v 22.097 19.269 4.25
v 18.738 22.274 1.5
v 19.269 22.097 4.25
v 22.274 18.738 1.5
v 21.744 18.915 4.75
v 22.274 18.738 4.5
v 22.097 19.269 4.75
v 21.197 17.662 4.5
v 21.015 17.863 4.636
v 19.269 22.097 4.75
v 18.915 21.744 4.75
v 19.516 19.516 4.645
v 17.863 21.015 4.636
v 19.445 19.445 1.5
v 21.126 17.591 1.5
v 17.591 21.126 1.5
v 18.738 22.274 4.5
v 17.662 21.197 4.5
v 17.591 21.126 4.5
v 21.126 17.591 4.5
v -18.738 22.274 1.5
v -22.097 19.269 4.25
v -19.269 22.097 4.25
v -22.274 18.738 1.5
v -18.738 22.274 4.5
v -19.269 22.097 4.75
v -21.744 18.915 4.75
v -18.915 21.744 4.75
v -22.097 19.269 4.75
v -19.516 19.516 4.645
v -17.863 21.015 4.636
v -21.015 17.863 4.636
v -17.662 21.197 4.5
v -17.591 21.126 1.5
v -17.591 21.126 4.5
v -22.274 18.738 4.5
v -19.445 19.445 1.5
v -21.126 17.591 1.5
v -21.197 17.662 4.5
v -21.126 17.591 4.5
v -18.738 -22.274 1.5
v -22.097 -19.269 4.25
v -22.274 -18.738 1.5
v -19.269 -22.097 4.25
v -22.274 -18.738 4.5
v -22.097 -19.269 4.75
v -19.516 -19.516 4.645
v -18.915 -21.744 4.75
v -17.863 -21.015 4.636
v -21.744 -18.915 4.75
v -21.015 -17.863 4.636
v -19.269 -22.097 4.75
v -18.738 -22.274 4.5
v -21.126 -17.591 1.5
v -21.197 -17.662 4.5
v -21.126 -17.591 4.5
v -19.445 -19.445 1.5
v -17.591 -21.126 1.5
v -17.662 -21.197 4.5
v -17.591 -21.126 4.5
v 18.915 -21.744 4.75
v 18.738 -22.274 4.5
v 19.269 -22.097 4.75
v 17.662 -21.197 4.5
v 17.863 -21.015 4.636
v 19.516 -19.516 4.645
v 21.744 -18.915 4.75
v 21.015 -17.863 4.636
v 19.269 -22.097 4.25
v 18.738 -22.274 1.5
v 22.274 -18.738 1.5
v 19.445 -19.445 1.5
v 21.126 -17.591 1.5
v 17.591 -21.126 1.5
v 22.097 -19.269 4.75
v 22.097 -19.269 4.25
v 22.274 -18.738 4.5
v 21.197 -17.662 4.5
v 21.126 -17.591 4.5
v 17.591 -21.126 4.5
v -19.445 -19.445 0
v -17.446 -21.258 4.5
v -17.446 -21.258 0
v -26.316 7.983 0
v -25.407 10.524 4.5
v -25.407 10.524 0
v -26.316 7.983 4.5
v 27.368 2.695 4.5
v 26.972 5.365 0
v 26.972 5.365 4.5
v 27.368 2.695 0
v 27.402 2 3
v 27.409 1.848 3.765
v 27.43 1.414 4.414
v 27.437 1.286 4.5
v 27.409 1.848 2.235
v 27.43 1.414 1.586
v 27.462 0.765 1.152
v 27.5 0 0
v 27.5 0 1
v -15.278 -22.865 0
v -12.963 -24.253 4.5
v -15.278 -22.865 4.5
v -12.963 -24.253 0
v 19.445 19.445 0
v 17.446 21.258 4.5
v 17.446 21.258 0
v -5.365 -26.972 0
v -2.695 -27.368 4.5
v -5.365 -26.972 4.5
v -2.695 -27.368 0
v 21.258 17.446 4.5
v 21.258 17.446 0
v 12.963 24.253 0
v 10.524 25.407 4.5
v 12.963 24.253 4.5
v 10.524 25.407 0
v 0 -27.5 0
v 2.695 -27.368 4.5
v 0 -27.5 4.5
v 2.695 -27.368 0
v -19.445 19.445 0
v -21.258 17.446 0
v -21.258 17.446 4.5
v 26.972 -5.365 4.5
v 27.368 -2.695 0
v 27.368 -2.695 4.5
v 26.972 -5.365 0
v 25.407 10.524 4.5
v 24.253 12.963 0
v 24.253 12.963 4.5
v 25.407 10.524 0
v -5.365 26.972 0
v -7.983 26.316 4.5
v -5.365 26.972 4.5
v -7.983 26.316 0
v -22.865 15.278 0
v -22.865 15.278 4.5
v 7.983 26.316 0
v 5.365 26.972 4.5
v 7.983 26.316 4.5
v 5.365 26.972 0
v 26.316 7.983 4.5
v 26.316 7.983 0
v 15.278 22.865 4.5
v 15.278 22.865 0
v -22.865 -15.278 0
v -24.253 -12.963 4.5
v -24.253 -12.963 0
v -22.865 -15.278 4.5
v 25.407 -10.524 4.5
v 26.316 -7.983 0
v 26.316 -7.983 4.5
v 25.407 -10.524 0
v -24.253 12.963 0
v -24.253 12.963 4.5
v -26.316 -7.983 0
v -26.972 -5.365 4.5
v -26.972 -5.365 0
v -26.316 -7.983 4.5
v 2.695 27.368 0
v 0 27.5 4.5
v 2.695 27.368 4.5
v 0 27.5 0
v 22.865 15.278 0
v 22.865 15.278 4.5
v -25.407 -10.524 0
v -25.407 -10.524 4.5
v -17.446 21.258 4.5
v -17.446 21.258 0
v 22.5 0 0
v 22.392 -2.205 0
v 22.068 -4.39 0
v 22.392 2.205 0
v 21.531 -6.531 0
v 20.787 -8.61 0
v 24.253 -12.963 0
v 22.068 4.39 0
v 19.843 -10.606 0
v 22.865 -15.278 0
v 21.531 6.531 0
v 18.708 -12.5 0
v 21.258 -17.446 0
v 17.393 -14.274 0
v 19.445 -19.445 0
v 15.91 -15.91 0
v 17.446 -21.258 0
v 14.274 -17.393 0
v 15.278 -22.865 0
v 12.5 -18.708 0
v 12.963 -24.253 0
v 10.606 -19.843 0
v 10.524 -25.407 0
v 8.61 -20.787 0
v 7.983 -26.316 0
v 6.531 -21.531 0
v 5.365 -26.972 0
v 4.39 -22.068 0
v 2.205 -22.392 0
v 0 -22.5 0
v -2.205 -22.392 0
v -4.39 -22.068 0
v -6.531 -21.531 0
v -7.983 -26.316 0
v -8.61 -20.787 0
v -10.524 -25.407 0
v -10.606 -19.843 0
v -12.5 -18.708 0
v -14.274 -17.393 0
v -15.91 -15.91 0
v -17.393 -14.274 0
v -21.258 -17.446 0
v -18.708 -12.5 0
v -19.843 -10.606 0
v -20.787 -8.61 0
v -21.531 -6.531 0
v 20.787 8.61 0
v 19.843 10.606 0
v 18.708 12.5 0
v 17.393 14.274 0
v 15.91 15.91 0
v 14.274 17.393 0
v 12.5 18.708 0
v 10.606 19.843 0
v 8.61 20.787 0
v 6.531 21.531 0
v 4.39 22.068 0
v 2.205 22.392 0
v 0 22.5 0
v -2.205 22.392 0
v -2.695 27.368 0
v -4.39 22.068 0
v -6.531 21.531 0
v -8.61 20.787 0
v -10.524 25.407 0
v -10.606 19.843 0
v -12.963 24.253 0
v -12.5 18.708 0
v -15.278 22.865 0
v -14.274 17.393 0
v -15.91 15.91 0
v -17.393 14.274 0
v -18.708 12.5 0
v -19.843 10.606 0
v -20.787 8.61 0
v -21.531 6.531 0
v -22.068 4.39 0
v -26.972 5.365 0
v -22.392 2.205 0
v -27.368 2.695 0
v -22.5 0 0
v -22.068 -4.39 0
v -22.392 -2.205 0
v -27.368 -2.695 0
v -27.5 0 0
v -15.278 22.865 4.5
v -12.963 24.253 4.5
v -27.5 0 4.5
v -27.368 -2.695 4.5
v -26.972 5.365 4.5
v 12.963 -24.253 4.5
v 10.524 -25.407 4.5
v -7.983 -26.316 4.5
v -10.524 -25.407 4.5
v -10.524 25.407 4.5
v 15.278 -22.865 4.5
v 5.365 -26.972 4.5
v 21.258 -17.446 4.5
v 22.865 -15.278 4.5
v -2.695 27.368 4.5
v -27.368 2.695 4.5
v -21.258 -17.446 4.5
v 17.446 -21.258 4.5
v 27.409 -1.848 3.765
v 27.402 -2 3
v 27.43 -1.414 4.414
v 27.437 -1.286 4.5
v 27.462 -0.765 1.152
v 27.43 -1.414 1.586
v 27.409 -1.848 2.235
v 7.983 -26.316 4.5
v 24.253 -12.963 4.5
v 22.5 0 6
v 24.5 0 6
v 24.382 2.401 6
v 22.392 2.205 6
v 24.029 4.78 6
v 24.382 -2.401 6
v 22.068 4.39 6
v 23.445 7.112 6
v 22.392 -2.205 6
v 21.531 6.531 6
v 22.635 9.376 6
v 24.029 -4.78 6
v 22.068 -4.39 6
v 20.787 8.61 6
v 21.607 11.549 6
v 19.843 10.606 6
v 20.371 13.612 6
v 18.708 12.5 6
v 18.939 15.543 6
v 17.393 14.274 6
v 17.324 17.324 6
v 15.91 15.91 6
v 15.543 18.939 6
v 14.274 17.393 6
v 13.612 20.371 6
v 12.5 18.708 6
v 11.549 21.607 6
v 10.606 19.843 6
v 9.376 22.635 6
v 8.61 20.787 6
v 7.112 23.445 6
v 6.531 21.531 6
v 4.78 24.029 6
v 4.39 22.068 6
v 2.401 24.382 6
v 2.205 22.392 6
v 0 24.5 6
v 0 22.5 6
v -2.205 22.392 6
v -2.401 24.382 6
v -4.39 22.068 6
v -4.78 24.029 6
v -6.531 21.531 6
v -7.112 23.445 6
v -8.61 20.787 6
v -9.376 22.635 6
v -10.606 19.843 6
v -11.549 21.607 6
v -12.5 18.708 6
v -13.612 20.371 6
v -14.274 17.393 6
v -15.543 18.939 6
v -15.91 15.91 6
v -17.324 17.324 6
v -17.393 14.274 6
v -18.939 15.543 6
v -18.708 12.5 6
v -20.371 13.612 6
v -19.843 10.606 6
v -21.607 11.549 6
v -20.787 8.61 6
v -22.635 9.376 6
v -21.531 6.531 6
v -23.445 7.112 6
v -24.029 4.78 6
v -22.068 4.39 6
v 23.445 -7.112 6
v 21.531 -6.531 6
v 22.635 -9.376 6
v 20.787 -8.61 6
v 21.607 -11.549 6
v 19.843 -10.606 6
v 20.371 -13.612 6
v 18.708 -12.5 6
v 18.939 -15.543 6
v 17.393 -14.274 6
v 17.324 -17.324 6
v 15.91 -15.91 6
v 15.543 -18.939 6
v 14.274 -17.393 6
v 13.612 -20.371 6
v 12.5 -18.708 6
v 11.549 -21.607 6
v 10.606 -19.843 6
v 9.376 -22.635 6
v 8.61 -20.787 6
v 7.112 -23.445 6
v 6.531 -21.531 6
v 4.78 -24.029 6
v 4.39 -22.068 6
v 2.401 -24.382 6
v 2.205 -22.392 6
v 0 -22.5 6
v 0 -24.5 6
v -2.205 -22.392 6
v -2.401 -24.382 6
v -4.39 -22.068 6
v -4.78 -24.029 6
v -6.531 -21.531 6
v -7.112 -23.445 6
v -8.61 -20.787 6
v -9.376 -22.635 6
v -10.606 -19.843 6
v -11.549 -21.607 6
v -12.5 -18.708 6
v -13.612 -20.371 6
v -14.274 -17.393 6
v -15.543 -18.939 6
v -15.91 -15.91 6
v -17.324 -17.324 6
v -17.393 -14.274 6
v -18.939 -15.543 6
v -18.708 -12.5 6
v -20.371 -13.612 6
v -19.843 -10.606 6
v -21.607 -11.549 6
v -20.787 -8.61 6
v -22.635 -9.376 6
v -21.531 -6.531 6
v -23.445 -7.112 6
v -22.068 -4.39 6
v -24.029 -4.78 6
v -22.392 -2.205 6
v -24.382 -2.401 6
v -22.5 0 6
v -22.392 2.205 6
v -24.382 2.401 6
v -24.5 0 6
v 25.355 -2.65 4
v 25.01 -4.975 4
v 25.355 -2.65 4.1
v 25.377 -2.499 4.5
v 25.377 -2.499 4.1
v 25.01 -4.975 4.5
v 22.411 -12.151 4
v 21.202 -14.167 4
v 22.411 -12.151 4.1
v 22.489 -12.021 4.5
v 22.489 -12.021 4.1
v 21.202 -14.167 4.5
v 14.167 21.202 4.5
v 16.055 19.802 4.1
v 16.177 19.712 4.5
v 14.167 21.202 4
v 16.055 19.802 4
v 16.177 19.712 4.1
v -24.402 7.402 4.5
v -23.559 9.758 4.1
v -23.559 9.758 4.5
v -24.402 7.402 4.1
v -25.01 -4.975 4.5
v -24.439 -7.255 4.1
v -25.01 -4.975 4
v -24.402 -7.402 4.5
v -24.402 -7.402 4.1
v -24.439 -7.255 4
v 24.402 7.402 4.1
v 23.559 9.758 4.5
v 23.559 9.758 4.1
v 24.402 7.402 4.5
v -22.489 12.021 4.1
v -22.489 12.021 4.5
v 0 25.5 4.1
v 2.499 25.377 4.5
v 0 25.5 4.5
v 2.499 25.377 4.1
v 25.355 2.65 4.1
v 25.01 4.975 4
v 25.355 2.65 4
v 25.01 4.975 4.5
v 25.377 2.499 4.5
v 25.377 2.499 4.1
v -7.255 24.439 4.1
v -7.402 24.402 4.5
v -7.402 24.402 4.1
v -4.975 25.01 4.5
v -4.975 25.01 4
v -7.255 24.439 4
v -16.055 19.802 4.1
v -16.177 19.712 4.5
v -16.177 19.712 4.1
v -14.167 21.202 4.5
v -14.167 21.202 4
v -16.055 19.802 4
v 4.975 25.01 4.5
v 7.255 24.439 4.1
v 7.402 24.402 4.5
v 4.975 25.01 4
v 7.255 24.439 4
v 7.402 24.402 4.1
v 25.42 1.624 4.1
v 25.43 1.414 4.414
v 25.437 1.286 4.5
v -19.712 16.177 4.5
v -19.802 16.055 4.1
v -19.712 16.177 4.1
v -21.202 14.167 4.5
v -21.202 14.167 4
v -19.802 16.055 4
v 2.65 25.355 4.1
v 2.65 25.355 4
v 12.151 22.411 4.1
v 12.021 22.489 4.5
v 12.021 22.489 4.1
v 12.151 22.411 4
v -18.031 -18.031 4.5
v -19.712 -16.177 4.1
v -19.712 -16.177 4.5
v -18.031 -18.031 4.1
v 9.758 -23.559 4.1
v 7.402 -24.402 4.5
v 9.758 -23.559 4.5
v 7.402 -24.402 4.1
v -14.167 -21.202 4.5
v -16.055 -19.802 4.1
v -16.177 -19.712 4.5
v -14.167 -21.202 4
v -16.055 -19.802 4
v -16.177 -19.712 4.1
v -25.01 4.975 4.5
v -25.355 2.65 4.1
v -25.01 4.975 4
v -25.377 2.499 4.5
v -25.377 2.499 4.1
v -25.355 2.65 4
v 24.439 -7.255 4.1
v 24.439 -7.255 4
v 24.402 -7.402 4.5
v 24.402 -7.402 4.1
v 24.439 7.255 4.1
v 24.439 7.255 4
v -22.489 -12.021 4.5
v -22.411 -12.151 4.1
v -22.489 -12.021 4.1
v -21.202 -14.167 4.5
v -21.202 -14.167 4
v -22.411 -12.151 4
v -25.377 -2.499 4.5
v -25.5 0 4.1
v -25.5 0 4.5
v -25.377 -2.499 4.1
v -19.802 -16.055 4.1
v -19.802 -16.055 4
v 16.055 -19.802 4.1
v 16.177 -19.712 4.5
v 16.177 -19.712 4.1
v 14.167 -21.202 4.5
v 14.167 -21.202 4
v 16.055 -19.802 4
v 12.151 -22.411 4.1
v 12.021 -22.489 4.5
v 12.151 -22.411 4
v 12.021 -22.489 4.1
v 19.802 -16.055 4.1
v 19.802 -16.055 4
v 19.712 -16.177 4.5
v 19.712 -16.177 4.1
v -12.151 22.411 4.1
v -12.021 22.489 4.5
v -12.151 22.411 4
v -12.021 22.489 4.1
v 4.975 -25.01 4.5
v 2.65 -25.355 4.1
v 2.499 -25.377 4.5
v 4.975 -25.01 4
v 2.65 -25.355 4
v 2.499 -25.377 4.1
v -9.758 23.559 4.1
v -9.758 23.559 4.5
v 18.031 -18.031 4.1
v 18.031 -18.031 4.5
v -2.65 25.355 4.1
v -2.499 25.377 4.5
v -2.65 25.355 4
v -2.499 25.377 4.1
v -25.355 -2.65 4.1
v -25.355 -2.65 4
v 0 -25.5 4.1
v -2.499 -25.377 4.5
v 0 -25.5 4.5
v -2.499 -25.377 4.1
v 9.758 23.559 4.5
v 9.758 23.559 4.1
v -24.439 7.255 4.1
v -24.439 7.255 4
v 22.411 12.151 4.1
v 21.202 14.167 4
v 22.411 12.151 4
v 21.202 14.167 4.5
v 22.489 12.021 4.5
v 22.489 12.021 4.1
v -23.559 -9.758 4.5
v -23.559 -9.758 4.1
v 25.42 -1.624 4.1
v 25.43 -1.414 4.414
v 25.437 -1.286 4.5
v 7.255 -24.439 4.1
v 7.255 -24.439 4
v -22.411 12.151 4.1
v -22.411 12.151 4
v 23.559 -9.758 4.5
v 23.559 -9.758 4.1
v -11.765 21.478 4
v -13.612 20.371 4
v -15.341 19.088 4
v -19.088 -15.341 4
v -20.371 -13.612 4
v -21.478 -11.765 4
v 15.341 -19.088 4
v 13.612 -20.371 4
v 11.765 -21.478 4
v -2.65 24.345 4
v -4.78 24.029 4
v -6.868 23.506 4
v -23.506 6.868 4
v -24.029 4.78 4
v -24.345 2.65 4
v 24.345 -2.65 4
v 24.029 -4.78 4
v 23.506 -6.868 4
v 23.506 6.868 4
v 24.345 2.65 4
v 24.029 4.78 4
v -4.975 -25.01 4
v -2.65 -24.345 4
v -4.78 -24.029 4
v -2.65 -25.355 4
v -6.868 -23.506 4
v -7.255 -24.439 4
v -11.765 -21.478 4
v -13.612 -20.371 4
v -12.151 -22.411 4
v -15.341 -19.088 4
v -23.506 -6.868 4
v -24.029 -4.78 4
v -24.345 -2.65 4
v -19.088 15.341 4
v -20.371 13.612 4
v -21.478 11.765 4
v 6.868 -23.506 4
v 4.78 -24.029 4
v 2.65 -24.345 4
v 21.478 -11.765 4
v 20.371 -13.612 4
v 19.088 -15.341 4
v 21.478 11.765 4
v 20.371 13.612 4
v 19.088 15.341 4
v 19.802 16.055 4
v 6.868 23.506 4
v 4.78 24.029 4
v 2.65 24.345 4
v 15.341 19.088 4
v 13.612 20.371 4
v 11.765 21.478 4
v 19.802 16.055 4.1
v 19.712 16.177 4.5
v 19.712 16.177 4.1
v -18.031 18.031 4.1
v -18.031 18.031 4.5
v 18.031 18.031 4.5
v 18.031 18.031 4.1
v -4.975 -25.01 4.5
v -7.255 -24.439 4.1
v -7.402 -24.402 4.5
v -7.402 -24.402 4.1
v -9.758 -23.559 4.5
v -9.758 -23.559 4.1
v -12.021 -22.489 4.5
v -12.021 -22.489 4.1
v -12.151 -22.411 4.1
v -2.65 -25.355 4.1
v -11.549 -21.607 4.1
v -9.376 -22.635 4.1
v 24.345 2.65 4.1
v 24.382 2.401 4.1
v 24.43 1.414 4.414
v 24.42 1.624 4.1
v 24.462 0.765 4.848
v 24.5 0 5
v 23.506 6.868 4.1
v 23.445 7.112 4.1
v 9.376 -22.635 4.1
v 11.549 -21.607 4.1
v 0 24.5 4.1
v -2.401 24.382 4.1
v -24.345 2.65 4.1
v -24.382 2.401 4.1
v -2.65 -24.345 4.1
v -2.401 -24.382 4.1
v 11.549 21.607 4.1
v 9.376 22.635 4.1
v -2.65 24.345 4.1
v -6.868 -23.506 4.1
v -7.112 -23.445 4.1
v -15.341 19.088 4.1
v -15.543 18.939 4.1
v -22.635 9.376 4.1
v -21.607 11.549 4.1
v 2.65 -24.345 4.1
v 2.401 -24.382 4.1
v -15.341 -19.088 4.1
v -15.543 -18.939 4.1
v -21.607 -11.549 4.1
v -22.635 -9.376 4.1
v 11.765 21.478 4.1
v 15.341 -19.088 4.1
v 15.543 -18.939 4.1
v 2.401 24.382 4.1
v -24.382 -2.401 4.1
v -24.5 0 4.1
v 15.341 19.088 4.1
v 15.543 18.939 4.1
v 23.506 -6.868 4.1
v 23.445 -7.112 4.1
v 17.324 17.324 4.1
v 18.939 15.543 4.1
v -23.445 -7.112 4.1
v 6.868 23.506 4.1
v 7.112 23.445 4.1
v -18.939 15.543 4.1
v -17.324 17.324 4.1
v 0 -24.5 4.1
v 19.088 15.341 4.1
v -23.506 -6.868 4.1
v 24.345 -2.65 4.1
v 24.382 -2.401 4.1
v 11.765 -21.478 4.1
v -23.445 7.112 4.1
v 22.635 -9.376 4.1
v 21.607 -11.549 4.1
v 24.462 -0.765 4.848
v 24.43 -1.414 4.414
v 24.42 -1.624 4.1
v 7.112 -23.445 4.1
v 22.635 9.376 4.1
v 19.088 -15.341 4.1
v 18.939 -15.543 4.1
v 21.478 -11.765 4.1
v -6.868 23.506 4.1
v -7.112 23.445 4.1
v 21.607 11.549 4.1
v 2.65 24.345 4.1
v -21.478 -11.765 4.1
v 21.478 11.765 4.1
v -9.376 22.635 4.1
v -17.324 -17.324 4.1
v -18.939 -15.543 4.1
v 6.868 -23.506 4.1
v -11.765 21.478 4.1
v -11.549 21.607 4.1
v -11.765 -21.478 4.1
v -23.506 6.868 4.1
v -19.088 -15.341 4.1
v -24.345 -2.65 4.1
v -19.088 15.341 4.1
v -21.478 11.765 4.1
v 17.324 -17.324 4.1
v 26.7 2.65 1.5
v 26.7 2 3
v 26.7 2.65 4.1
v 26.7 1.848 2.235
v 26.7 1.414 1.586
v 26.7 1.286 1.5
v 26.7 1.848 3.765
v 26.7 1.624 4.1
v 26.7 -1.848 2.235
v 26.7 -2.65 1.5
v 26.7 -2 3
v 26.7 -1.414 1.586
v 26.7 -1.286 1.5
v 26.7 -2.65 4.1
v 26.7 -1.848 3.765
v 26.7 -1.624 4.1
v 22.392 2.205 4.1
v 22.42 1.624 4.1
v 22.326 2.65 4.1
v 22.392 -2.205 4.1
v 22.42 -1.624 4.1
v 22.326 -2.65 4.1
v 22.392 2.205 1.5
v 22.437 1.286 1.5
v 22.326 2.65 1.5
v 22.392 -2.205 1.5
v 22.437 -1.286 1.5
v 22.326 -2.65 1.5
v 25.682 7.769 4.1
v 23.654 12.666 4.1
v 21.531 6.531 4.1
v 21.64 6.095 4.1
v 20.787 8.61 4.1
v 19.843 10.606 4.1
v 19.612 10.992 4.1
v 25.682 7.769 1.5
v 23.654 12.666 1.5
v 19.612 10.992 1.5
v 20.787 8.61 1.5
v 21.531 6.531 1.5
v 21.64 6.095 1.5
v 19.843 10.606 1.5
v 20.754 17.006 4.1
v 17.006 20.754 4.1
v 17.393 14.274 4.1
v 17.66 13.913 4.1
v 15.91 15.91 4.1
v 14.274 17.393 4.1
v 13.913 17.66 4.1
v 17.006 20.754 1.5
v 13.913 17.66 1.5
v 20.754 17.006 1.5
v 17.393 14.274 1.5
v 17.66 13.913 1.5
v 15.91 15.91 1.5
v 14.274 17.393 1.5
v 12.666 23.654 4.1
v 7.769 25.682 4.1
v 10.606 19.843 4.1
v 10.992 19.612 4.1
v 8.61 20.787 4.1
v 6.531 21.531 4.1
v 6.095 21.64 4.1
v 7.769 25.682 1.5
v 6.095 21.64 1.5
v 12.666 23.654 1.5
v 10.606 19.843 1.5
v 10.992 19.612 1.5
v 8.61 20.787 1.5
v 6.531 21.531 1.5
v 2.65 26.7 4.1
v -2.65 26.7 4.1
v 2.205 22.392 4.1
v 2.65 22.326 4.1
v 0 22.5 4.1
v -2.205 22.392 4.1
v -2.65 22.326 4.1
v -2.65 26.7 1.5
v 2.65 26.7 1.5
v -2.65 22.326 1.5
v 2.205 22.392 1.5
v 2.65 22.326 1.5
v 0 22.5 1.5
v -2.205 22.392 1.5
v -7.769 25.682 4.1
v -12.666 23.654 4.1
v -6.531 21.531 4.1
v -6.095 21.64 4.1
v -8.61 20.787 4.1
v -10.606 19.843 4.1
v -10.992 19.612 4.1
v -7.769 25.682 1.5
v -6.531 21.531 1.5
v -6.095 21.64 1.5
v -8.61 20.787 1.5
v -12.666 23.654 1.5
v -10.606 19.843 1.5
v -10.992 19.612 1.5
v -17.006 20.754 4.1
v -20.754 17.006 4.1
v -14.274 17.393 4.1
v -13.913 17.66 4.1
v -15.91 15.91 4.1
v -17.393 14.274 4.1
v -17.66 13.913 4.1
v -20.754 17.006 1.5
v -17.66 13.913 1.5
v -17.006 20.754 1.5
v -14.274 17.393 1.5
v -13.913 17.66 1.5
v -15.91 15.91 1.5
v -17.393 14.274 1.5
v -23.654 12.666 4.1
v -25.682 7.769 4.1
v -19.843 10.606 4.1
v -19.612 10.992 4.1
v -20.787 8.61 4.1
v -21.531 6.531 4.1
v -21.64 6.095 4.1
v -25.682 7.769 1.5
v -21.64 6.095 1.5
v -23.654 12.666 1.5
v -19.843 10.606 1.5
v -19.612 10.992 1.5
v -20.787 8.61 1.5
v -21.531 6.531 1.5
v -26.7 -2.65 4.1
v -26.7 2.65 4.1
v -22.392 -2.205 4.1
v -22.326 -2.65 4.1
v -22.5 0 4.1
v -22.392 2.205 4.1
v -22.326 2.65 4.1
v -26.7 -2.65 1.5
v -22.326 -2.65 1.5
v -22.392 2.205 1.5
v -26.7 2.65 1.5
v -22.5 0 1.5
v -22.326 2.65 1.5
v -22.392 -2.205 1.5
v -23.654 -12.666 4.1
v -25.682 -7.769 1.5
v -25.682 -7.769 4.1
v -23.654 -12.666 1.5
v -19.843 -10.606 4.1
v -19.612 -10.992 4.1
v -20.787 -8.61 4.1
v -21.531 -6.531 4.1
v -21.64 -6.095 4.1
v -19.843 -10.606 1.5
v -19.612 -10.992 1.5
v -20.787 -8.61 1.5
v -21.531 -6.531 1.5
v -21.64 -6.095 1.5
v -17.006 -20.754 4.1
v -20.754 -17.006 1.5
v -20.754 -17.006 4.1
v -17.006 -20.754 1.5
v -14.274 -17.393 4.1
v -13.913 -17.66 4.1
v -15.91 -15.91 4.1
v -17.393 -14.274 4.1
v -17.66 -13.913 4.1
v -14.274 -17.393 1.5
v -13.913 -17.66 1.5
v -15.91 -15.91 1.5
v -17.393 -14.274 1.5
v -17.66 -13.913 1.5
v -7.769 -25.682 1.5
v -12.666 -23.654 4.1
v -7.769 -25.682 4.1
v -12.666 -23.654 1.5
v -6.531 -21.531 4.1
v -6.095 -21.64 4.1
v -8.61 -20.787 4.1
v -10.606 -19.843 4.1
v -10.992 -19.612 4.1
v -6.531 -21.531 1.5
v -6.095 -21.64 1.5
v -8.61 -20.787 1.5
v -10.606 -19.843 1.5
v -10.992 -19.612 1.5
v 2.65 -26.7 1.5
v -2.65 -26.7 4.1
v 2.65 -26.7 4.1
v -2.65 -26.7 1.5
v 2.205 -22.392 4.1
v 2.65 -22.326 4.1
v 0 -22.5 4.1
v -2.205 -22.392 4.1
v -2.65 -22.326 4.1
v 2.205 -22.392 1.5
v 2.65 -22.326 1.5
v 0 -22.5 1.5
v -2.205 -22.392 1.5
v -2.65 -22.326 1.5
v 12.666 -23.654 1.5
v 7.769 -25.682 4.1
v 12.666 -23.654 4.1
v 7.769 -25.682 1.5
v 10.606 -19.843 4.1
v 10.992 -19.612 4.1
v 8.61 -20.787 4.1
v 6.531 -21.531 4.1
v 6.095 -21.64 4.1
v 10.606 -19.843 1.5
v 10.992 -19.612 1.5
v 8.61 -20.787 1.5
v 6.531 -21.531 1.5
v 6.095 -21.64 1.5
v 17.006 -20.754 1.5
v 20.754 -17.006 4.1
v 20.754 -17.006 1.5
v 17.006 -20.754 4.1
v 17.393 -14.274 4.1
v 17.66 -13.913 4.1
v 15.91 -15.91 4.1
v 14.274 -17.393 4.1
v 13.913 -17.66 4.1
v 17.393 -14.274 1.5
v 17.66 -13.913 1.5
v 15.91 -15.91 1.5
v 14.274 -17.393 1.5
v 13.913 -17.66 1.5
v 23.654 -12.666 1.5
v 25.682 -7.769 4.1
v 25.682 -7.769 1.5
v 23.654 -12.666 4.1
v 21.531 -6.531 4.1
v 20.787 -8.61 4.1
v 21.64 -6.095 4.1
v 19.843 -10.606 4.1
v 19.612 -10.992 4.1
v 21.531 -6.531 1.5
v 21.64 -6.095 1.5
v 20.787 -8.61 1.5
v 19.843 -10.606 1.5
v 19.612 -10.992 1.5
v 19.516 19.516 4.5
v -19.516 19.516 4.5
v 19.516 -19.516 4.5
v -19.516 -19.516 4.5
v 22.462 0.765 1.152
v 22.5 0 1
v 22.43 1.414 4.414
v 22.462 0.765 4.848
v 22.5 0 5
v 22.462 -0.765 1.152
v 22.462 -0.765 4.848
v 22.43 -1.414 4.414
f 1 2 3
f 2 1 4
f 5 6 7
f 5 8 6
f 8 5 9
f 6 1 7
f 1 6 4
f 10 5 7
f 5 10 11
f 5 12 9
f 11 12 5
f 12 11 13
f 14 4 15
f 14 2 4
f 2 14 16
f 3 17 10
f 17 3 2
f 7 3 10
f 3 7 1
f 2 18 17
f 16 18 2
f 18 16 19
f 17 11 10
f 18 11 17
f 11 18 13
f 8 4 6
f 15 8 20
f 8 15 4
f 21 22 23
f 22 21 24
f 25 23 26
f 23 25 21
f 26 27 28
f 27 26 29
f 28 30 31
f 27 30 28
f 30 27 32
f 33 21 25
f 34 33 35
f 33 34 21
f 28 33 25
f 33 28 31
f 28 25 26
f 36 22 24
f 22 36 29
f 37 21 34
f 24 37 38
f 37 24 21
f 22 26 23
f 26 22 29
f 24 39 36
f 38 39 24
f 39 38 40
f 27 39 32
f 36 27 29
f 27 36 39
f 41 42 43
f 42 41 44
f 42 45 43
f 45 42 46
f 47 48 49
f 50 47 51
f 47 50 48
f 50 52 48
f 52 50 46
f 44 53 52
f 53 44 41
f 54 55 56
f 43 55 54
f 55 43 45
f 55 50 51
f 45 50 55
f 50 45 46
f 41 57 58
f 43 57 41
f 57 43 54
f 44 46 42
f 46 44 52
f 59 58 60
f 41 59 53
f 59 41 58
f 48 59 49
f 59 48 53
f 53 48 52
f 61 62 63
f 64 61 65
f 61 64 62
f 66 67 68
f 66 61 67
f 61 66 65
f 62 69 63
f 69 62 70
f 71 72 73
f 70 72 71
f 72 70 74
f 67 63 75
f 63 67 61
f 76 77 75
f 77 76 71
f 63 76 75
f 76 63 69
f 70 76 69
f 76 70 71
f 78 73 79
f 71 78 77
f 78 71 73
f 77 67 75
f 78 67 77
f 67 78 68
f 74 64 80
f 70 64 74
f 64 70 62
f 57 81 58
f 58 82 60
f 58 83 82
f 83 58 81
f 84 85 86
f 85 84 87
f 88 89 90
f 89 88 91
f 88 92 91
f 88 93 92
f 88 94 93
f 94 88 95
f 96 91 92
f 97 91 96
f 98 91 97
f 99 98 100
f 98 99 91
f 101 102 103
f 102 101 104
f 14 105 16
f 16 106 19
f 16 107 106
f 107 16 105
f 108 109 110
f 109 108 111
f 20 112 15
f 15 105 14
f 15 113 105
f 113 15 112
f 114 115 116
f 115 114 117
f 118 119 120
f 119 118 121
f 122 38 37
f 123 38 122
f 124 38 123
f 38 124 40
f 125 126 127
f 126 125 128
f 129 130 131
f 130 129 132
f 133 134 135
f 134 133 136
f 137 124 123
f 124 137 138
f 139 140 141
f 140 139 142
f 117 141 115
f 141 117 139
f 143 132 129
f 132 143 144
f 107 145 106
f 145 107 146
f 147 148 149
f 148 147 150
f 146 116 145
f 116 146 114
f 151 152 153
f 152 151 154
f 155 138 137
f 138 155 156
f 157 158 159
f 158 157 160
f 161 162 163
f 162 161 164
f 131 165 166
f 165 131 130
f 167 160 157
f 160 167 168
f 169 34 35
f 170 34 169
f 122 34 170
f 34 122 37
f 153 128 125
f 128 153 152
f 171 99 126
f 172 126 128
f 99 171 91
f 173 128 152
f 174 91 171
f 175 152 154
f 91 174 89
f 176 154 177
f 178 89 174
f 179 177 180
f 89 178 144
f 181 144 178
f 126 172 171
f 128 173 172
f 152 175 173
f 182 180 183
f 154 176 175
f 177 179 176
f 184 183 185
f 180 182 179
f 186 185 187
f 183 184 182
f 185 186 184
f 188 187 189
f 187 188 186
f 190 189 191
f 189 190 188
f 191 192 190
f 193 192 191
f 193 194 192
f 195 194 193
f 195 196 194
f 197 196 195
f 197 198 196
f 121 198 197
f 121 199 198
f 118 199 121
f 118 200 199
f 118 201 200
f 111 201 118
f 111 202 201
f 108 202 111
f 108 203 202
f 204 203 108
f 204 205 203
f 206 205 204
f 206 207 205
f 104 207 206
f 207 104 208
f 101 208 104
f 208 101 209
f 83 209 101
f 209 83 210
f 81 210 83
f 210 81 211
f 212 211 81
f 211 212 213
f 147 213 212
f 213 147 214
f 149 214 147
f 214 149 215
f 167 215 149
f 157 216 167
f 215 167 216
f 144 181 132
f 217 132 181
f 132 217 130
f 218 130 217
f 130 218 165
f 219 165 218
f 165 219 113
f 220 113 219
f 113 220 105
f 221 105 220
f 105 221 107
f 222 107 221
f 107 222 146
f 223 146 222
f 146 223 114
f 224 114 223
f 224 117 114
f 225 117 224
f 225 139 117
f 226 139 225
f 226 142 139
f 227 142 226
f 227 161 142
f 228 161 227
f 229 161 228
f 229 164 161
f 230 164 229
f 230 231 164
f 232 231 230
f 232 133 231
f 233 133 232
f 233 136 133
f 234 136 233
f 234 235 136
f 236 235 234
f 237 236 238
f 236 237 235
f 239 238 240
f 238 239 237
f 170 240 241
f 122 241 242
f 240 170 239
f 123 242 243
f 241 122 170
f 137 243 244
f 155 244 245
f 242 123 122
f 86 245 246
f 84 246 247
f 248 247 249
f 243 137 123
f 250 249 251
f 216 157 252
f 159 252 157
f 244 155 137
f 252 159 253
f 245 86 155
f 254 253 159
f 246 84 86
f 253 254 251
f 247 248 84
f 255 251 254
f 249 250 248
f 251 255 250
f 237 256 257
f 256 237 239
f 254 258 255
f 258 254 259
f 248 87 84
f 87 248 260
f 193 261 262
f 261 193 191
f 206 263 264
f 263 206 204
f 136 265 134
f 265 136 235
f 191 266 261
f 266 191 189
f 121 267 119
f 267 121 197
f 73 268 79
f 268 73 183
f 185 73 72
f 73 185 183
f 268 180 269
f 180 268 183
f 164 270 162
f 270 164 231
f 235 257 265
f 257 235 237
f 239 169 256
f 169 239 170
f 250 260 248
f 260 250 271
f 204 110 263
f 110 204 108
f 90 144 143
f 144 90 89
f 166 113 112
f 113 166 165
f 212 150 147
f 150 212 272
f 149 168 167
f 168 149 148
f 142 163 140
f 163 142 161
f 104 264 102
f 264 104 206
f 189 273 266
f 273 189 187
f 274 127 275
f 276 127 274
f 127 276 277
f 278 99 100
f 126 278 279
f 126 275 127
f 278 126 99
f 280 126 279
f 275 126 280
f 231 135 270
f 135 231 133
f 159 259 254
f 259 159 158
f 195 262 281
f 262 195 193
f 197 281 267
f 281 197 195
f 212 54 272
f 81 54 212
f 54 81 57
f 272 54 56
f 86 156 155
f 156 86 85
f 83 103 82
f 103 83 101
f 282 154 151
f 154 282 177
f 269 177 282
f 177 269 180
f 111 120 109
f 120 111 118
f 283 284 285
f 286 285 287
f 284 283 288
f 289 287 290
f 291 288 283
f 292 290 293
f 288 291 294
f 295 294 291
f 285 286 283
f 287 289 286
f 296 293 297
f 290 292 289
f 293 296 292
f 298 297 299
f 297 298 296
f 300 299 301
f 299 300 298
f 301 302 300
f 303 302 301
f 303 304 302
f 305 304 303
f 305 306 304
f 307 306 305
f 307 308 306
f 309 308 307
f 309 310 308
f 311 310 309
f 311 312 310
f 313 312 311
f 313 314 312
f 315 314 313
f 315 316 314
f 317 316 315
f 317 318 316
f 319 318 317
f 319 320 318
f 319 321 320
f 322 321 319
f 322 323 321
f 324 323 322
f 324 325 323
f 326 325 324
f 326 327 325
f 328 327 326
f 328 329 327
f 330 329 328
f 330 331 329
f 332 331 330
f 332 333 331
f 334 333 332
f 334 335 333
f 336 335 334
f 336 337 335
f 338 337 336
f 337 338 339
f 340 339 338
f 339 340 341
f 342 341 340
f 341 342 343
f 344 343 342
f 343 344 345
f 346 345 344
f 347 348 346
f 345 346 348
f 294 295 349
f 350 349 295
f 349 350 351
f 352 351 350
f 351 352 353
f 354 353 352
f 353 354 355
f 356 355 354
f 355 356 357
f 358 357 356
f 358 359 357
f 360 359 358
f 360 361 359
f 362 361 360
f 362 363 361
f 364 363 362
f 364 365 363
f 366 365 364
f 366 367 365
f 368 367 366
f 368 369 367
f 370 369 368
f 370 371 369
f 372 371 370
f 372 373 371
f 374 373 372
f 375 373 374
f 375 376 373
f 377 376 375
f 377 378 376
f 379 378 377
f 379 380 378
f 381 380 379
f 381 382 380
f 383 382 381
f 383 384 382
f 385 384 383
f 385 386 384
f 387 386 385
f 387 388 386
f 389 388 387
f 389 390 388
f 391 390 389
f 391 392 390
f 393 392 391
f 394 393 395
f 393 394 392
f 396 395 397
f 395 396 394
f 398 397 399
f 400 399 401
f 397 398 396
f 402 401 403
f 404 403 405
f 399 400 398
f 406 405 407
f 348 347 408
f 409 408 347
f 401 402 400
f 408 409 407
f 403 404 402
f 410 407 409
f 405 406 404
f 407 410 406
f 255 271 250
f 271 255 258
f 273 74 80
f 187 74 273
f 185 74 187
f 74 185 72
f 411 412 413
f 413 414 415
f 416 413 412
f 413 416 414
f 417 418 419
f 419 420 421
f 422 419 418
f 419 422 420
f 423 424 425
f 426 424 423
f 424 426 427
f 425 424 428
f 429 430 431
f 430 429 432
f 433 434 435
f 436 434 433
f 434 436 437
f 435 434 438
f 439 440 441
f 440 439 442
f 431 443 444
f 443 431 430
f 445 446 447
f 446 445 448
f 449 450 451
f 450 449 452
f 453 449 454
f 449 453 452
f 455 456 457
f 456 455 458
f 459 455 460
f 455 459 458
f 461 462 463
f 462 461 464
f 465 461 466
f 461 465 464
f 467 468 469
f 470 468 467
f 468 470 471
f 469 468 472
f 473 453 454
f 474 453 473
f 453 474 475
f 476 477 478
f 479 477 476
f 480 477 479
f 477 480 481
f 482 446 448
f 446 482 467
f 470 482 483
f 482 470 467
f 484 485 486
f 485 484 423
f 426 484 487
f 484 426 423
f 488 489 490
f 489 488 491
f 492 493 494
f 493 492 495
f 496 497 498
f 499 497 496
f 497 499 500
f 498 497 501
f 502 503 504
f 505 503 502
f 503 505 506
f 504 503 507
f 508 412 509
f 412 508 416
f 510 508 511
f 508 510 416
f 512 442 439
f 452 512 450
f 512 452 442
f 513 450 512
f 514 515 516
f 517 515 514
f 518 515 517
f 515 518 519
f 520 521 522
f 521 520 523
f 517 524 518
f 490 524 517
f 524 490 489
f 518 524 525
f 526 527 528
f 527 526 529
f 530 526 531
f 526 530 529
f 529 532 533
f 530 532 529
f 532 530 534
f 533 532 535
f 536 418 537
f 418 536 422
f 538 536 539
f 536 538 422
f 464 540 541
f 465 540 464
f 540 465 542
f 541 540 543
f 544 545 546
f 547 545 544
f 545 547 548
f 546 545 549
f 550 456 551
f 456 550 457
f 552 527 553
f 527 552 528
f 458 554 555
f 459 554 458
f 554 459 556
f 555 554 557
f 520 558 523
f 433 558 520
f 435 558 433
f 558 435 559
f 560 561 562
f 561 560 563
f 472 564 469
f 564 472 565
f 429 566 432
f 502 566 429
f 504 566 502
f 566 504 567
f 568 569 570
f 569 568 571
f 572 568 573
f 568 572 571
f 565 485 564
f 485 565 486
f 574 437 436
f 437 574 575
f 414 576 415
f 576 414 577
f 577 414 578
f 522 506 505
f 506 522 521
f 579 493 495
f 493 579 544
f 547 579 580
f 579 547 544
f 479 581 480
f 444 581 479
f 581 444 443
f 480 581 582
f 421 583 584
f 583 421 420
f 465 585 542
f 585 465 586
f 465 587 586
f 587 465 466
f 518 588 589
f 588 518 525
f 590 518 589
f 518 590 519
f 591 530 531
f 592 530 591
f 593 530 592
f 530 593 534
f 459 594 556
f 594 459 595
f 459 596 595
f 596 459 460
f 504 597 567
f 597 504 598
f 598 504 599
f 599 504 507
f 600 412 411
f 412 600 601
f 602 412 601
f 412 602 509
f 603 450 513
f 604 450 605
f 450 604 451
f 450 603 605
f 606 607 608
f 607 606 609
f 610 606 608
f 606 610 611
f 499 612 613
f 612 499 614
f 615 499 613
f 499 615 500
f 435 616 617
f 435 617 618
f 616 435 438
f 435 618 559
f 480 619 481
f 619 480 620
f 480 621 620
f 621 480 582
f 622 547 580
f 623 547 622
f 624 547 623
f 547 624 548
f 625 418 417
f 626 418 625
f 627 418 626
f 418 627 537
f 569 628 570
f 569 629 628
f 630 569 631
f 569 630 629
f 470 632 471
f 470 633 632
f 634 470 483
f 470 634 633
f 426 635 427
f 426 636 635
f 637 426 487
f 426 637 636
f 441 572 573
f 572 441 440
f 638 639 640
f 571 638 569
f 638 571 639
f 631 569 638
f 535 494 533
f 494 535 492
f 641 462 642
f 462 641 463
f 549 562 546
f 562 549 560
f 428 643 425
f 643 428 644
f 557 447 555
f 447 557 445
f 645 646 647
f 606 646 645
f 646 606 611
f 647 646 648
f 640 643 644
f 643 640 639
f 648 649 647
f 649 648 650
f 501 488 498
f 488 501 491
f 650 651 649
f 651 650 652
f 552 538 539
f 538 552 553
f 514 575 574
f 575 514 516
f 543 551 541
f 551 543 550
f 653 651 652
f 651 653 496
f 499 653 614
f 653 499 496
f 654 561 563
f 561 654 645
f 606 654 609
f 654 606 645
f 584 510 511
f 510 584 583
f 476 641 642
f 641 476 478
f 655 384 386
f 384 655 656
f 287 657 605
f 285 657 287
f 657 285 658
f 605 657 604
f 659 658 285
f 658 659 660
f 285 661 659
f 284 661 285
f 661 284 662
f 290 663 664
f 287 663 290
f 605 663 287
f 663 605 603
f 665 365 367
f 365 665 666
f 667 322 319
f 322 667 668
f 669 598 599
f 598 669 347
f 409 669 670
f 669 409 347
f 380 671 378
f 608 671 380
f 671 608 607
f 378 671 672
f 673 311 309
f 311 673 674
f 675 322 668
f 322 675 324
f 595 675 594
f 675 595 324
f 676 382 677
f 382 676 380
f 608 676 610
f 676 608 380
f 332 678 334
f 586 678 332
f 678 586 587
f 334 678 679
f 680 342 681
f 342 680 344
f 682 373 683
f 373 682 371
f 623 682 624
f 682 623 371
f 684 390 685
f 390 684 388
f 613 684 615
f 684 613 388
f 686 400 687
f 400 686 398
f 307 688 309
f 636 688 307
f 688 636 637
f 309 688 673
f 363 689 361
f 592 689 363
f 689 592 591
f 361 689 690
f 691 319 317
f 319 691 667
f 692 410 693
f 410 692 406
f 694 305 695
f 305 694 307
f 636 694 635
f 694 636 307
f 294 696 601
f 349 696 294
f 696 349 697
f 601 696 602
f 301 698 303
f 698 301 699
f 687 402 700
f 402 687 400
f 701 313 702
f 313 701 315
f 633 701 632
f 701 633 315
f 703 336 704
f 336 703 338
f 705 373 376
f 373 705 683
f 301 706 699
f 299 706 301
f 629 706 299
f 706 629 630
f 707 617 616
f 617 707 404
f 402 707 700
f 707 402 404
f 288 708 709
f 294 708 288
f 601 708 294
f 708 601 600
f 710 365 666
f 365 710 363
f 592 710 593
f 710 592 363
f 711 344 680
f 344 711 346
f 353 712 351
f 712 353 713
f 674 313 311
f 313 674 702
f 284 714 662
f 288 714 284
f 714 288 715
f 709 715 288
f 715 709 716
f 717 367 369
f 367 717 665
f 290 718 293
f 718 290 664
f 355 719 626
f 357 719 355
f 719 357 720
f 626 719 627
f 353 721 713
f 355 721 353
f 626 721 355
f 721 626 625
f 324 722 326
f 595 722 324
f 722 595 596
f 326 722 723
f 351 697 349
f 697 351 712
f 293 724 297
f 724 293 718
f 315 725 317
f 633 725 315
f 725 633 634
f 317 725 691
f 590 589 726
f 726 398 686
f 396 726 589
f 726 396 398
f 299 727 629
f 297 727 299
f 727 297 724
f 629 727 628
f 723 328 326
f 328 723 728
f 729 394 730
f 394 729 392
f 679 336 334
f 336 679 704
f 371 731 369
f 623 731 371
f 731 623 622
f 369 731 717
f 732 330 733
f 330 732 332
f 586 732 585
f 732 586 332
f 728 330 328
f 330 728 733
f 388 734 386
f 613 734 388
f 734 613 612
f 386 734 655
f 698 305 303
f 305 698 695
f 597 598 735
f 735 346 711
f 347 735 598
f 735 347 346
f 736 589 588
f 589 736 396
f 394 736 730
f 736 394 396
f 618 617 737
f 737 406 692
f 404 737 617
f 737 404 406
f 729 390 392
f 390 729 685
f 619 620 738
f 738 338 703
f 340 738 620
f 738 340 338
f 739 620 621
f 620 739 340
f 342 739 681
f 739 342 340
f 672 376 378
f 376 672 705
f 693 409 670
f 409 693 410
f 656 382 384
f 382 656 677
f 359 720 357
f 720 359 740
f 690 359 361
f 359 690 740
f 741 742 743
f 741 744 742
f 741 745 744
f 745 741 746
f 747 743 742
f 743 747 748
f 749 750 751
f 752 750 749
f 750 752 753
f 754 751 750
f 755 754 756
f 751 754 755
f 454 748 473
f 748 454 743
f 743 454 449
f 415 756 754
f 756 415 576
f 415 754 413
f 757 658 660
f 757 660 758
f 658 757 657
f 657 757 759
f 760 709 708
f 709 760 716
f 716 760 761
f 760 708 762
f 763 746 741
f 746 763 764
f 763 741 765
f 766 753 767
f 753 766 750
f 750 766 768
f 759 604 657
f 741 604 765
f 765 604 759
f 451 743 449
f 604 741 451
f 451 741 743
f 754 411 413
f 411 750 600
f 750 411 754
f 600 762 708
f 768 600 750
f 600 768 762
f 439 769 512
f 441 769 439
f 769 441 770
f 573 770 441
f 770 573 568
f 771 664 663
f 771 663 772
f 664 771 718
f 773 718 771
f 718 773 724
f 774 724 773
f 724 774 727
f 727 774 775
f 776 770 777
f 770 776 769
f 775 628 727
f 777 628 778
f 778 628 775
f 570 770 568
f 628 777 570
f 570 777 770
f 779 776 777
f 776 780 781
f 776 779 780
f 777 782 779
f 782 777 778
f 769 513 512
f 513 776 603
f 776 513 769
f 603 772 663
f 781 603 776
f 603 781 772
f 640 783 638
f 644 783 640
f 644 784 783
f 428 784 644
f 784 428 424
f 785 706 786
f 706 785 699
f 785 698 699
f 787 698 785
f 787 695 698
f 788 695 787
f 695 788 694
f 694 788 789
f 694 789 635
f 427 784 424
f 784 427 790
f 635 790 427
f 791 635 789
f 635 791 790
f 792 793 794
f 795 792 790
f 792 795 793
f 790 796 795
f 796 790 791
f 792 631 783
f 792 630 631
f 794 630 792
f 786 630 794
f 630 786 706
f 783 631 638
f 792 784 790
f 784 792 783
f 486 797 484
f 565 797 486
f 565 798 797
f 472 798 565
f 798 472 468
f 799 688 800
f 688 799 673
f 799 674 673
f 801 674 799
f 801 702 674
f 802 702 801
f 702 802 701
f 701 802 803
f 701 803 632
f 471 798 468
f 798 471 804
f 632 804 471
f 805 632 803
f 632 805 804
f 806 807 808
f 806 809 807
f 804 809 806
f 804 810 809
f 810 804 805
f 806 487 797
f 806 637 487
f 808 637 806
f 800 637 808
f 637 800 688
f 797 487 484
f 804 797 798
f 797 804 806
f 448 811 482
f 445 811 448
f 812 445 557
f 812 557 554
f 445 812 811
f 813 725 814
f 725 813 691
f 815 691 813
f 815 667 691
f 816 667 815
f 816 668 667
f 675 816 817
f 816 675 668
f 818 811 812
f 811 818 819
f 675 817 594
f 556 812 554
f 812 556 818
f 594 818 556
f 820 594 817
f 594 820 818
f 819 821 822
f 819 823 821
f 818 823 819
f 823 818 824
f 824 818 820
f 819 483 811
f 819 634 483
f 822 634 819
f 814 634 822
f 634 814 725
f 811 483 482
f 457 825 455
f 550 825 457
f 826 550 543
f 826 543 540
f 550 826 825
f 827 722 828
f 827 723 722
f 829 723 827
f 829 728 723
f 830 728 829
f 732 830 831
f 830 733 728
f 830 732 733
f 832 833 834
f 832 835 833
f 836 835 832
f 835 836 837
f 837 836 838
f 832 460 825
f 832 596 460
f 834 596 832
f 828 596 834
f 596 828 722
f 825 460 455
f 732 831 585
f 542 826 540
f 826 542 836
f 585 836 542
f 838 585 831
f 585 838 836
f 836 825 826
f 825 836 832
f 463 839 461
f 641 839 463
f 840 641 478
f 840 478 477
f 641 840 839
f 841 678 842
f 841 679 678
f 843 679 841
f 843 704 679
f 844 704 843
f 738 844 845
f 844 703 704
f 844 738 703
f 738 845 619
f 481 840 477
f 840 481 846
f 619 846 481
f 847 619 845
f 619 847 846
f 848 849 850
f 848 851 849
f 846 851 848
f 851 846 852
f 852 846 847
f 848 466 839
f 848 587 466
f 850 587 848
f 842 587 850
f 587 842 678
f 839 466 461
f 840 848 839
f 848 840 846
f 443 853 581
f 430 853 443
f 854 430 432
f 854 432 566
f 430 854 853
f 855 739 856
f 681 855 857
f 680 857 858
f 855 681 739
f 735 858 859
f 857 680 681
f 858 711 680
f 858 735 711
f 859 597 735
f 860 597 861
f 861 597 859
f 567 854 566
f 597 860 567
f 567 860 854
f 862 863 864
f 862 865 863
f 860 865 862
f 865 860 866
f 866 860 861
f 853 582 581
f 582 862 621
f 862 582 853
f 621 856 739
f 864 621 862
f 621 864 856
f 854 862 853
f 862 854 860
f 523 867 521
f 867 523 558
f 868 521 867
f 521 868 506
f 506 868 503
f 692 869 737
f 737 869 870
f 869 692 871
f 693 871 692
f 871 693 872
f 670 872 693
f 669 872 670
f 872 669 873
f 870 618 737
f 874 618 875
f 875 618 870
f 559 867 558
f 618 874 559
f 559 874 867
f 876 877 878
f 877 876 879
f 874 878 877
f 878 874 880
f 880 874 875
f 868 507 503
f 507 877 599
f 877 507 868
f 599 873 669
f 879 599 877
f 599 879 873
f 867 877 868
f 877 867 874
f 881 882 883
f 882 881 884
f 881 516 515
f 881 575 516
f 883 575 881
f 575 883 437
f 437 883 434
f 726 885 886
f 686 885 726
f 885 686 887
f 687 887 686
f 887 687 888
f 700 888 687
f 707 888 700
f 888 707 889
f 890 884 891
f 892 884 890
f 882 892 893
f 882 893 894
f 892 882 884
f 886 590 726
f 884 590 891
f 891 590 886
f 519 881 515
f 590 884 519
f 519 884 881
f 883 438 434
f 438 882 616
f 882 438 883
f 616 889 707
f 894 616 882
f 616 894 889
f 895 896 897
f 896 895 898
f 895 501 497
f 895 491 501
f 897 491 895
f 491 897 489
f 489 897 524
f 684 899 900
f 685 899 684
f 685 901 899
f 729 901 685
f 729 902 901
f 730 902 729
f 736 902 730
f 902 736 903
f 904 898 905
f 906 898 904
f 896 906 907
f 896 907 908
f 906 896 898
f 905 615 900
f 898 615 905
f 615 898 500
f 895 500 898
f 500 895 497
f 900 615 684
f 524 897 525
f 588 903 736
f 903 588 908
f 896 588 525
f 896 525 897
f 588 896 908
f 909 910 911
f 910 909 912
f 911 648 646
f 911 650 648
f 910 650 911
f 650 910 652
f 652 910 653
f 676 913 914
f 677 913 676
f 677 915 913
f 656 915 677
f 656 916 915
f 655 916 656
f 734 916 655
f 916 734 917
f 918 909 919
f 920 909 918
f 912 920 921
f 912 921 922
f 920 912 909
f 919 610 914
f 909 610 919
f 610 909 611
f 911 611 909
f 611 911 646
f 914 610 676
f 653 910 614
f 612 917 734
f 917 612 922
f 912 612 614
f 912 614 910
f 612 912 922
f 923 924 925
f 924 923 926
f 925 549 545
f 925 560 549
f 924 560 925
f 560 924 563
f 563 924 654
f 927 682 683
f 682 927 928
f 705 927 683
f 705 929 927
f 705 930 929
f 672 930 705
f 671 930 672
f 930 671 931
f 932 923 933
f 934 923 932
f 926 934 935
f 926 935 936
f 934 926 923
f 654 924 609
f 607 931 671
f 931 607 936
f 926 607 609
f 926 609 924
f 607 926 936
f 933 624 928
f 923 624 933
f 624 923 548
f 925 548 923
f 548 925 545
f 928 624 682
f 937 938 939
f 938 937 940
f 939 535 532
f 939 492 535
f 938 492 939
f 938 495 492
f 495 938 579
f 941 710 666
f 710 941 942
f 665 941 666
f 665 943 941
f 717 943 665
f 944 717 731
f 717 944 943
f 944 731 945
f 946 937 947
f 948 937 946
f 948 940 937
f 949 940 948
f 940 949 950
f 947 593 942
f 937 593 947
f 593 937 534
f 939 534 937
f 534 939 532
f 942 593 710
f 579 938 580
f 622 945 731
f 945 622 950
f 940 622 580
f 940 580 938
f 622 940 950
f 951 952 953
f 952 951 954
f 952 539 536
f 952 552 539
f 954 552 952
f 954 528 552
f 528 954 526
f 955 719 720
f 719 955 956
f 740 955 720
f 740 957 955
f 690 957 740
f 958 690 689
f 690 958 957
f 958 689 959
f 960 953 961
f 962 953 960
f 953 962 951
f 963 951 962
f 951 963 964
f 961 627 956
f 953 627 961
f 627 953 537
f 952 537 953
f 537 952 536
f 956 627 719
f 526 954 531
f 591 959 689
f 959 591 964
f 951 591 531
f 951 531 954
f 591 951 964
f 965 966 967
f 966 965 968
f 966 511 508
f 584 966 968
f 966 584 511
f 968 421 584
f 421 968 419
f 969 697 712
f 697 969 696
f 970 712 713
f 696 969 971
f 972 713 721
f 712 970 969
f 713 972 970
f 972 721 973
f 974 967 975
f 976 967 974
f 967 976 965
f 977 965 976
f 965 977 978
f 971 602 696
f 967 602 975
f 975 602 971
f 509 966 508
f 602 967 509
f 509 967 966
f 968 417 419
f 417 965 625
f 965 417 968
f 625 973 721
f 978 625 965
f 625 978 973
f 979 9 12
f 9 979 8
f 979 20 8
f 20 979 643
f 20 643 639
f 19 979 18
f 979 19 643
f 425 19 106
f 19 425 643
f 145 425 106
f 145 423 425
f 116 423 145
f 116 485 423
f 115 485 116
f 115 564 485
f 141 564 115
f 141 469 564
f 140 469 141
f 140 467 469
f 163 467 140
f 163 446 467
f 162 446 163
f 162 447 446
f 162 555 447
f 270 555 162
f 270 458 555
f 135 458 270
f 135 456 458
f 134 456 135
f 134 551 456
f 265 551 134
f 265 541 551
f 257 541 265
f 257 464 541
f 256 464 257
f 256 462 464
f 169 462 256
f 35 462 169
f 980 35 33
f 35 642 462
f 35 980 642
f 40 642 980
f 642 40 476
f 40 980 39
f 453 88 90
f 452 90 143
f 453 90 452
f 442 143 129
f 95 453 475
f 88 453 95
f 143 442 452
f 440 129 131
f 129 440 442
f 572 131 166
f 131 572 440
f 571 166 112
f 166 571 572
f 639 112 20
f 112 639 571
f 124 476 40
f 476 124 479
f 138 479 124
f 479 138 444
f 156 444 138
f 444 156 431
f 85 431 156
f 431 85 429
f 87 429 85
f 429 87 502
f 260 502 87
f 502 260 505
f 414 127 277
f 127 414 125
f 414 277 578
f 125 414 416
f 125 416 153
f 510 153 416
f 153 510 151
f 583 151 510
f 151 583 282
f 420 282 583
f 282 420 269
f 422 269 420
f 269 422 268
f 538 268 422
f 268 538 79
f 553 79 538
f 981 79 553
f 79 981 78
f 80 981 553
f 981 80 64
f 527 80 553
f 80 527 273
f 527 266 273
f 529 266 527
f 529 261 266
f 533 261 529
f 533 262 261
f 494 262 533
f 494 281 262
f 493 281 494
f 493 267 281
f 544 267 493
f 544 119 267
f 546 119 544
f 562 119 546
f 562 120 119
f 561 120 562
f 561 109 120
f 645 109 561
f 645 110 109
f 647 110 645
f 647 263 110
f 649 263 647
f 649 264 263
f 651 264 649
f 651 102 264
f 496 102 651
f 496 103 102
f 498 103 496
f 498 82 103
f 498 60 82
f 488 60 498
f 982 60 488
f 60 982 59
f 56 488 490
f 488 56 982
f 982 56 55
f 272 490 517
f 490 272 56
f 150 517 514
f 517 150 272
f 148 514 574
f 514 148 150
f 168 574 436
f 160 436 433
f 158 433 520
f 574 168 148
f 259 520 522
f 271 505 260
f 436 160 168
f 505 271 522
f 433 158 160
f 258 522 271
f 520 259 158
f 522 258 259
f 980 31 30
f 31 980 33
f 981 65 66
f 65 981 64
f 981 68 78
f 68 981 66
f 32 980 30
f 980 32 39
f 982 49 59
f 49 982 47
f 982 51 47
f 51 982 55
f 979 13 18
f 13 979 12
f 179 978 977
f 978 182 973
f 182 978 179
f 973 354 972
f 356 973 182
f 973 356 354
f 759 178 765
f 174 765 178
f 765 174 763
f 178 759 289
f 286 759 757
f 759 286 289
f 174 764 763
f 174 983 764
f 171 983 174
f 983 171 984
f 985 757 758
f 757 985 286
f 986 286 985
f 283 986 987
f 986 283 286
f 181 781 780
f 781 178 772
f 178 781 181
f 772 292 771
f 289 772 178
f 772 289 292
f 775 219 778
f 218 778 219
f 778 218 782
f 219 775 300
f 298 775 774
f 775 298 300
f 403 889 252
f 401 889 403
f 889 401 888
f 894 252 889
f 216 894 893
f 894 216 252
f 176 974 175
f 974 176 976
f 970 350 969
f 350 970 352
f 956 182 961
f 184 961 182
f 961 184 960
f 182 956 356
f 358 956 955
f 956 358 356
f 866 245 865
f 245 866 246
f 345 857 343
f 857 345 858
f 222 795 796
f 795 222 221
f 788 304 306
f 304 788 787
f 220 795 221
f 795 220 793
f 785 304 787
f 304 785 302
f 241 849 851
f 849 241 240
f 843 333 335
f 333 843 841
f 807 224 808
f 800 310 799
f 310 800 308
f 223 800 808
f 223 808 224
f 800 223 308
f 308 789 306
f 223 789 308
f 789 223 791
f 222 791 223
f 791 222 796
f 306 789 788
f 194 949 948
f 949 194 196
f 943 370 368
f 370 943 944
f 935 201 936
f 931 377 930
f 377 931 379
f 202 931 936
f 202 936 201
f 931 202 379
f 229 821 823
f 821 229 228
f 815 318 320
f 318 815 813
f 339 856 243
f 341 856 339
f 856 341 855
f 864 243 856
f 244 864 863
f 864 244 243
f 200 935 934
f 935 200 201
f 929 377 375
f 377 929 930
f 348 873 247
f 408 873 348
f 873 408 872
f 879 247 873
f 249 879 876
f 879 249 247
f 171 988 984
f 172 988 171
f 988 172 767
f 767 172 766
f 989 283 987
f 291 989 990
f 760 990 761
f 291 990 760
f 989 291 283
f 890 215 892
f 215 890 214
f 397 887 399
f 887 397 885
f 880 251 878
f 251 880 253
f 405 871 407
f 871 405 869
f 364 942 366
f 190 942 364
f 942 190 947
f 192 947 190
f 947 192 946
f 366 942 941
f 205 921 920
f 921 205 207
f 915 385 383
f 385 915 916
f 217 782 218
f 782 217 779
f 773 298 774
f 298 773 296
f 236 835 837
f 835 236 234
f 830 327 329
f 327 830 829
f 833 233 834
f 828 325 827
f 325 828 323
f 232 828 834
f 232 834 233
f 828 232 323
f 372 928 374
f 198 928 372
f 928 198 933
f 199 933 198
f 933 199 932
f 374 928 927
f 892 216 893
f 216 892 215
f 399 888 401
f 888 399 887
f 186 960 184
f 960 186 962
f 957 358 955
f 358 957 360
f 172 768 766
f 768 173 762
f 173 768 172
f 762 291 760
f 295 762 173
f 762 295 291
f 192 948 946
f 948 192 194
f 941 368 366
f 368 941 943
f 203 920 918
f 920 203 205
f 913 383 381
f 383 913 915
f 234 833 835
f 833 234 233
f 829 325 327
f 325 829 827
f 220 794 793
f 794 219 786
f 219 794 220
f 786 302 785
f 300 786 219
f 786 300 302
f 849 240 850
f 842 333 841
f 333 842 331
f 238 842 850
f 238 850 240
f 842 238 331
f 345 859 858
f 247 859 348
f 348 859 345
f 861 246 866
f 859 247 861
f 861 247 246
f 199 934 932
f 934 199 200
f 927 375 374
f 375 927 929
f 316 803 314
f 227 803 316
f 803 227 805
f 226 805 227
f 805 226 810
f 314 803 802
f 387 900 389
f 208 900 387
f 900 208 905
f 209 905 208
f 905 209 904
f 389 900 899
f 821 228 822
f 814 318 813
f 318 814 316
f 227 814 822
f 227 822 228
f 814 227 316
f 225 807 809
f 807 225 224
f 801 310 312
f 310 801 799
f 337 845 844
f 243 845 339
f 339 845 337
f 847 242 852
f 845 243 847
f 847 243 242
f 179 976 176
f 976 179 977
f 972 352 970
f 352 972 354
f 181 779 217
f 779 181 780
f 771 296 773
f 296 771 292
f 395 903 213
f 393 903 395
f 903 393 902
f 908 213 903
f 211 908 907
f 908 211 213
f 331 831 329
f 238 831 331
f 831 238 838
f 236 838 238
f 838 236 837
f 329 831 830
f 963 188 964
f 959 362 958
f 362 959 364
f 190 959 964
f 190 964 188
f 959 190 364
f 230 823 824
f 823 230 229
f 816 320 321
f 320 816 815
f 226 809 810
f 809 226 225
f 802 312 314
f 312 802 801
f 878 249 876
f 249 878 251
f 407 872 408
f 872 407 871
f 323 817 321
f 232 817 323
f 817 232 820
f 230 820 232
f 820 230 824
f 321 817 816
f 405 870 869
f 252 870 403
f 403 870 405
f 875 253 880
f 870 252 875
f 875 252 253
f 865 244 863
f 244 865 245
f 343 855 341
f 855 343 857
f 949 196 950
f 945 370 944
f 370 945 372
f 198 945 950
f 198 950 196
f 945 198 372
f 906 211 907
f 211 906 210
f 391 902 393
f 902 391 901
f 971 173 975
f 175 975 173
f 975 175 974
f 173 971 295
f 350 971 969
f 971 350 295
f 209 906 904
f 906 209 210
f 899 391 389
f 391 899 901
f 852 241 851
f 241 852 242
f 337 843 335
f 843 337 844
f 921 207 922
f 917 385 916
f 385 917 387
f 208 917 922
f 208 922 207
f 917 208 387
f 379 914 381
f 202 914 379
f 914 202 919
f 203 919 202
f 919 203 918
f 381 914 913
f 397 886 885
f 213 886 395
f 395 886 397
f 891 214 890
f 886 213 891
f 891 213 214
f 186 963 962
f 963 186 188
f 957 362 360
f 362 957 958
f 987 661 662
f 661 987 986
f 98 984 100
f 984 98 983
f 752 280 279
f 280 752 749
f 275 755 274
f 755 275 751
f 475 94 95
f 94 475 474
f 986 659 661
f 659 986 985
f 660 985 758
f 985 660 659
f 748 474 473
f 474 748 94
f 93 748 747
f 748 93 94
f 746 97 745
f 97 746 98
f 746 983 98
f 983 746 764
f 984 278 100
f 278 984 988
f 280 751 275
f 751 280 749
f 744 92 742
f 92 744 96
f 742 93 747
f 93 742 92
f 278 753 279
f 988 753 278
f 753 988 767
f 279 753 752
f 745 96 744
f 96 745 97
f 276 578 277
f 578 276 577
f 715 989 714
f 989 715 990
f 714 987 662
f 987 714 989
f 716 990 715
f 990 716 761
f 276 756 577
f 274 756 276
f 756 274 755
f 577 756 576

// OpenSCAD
// Kagami Orb V3.1 — LED Mount Ring (VERIFIED DIMENSIONS)
// ========================================================
// Holds 16× HD108 5050 LEDs at sphere equator
// Material: Grey Pro or Black PETG
// Print: Form 4, 50μm layer height
//
// VERIFIED SOURCES:
// - HD108 LED: 5.1 × 5.0 × 1.6mm (5050 package)
//   https://shine-leds.com/wp-content/uploads/2024/05/Specification-Datasheet-HD108.pdf

/* [HD108 LED Parameters - VERIFIED] */
// Source: HD108 datasheet
led_length = 5.1;                 // VERIFIED
led_width = 5.0;                  // VERIFIED (5050 = 5.0mm)
led_height = 1.6;                 // VERIFIED
led_count = 16;                   // Design spec
led_spacing_angle = 360 / led_count;  // 22.5° between LEDs

/* [Ring Parameters] */
ring_outer_diameter = 55;         // Fits at equator
ring_inner_diameter = 45;         // Inner opening
ring_height = 6;                  // Ring height
ring_wall = 2;                    // Wall thickness

/* [PCB Integration] */
pcb_thickness = 1.6;              // Standard PCB
pcb_slot_depth = 2;               // PCB sits in slot
led_ring_radius = 24;             // LED center radius

/* [Mounting] */
snap_tab_count = 4;               // Snap-fit to frame
snap_tab_width = 5;
snap_tab_height = 3;
snap_tab_protrusion = 1.5;

/* [Diffuser Interface] */
diffuser_slot_width = 2.5;        // Slot for diffuser ring
diffuser_slot_depth = 1.5;

// ============================================================
// DERIVED DIMENSIONS
// ============================================================
ring_mid_diameter = (ring_outer_diameter + ring_inner_diameter) / 2;

// ============================================================
// MAIN MODULE  
// ============================================================
module led_mount_ring() {
    difference() {
        union() {
            // Main ring body
            cylinder(h=ring_height, d=ring_outer_diameter, $fn=64);
            
            // Snap-fit tabs (outward)
            for (i = [0:snap_tab_count-1]) {
                rotate([0, 0, i * (360/snap_tab_count) + 45])
                translate([ring_outer_diameter/2, 0, ring_height/2])
                    snap_tab();
            }
        }
        
        // Inner opening
        translate([0, 0, -0.1])
            cylinder(h=ring_height + 0.2, d=ring_inner_diameter, $fn=64);
        
        // PCB slot (circular channel)
        translate([0, 0, ring_height - pcb_slot_depth])
        difference() {
            cylinder(h=pcb_slot_depth + 0.1, d=ring_outer_diameter - 4, $fn=64);
            cylinder(h=pcb_slot_depth + 0.1, d=ring_inner_diameter + 4, $fn=64);
        }
        
        // LED pockets (16×)
        for (i = [0:led_count-1]) {
            rotate([0, 0, i * led_spacing_angle])
            translate([led_ring_radius, 0, ring_height - pcb_thickness - led_height])
                led_pocket();
        }
        
        // Diffuser ring slot (top outer edge)
        translate([0, 0, ring_height - diffuser_slot_depth])
        difference() {
            cylinder(h=diffuser_slot_depth + 0.1, d=ring_outer_diameter + 0.2, $fn=64);
            cylinder(h=diffuser_slot_depth + 0.1, d=ring_outer_diameter - diffuser_slot_width*2, $fn=64);
        }
        
        // Wire channel (single entry point)
        translate([ring_outer_diameter/2 - 3, 0, ring_height/2])
            rotate([0, 90, 0])
            cylinder(h=10, d=4, center=true, $fn=16);
    }
}

// ============================================================
// LED POCKET
// ============================================================
module led_pocket() {
    // Pocket for HD108 5050 LED
    // Slightly oversized for solder tolerance
    cube([led_length + 0.3, led_width + 0.3, led_height + 1], center=true);
}

// ============================================================
// SNAP TAB
// ============================================================
module snap_tab() {
    // Snap-fit tab for frame attachment
    hull() {
        cube([snap_tab_protrusion * 2, snap_tab_width, snap_tab_height], center=true);
        translate([snap_tab_protrusion, 0, snap_tab_height/2])
            cube([0.5, snap_tab_width - 1, 0.5], center=true);
    }
}

// ============================================================
// RENDER
// ============================================================
led_mount_ring();

// ============================================================
// VERIFICATION
// ============================================================
echo("=== LED MOUNT RING VERIFICATION ===");
echo(str("Ring OD: ", ring_outer_diameter, "mm"));
echo(str("Ring ID: ", ring_inner_diameter, "mm"));
echo(str("LED count: ", led_count, " × HD108"));
echo(str("LED size (verified): ", led_length, " × ", led_width, " × ", led_height, "mm"));
echo(str("LED spacing: ", led_spacing_angle, "°"));
echo(str("Fits in 70mm internal? ", ring_outer_diameter < 70 ? "YES ✓" : "NO ✗"));
